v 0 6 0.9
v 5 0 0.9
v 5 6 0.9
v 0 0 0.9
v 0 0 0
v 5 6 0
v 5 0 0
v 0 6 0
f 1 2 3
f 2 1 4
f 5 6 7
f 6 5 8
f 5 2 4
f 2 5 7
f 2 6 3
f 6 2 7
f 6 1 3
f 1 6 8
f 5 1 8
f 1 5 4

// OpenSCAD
/* Warning, this is a very basic generator with a lot of approximation 
input data : [VQFN, QNA, 5x6x0.9mm, 36, , A, C04-01290A]
generated by com.zoubworld.electronics.cad.model3d.Basic
Date : Sun Feb 15 10:50:49 CET 2026
*/

//body
color("black")
translate([0,0,0])
cube([5.0,6.0,0.9], center=false);
